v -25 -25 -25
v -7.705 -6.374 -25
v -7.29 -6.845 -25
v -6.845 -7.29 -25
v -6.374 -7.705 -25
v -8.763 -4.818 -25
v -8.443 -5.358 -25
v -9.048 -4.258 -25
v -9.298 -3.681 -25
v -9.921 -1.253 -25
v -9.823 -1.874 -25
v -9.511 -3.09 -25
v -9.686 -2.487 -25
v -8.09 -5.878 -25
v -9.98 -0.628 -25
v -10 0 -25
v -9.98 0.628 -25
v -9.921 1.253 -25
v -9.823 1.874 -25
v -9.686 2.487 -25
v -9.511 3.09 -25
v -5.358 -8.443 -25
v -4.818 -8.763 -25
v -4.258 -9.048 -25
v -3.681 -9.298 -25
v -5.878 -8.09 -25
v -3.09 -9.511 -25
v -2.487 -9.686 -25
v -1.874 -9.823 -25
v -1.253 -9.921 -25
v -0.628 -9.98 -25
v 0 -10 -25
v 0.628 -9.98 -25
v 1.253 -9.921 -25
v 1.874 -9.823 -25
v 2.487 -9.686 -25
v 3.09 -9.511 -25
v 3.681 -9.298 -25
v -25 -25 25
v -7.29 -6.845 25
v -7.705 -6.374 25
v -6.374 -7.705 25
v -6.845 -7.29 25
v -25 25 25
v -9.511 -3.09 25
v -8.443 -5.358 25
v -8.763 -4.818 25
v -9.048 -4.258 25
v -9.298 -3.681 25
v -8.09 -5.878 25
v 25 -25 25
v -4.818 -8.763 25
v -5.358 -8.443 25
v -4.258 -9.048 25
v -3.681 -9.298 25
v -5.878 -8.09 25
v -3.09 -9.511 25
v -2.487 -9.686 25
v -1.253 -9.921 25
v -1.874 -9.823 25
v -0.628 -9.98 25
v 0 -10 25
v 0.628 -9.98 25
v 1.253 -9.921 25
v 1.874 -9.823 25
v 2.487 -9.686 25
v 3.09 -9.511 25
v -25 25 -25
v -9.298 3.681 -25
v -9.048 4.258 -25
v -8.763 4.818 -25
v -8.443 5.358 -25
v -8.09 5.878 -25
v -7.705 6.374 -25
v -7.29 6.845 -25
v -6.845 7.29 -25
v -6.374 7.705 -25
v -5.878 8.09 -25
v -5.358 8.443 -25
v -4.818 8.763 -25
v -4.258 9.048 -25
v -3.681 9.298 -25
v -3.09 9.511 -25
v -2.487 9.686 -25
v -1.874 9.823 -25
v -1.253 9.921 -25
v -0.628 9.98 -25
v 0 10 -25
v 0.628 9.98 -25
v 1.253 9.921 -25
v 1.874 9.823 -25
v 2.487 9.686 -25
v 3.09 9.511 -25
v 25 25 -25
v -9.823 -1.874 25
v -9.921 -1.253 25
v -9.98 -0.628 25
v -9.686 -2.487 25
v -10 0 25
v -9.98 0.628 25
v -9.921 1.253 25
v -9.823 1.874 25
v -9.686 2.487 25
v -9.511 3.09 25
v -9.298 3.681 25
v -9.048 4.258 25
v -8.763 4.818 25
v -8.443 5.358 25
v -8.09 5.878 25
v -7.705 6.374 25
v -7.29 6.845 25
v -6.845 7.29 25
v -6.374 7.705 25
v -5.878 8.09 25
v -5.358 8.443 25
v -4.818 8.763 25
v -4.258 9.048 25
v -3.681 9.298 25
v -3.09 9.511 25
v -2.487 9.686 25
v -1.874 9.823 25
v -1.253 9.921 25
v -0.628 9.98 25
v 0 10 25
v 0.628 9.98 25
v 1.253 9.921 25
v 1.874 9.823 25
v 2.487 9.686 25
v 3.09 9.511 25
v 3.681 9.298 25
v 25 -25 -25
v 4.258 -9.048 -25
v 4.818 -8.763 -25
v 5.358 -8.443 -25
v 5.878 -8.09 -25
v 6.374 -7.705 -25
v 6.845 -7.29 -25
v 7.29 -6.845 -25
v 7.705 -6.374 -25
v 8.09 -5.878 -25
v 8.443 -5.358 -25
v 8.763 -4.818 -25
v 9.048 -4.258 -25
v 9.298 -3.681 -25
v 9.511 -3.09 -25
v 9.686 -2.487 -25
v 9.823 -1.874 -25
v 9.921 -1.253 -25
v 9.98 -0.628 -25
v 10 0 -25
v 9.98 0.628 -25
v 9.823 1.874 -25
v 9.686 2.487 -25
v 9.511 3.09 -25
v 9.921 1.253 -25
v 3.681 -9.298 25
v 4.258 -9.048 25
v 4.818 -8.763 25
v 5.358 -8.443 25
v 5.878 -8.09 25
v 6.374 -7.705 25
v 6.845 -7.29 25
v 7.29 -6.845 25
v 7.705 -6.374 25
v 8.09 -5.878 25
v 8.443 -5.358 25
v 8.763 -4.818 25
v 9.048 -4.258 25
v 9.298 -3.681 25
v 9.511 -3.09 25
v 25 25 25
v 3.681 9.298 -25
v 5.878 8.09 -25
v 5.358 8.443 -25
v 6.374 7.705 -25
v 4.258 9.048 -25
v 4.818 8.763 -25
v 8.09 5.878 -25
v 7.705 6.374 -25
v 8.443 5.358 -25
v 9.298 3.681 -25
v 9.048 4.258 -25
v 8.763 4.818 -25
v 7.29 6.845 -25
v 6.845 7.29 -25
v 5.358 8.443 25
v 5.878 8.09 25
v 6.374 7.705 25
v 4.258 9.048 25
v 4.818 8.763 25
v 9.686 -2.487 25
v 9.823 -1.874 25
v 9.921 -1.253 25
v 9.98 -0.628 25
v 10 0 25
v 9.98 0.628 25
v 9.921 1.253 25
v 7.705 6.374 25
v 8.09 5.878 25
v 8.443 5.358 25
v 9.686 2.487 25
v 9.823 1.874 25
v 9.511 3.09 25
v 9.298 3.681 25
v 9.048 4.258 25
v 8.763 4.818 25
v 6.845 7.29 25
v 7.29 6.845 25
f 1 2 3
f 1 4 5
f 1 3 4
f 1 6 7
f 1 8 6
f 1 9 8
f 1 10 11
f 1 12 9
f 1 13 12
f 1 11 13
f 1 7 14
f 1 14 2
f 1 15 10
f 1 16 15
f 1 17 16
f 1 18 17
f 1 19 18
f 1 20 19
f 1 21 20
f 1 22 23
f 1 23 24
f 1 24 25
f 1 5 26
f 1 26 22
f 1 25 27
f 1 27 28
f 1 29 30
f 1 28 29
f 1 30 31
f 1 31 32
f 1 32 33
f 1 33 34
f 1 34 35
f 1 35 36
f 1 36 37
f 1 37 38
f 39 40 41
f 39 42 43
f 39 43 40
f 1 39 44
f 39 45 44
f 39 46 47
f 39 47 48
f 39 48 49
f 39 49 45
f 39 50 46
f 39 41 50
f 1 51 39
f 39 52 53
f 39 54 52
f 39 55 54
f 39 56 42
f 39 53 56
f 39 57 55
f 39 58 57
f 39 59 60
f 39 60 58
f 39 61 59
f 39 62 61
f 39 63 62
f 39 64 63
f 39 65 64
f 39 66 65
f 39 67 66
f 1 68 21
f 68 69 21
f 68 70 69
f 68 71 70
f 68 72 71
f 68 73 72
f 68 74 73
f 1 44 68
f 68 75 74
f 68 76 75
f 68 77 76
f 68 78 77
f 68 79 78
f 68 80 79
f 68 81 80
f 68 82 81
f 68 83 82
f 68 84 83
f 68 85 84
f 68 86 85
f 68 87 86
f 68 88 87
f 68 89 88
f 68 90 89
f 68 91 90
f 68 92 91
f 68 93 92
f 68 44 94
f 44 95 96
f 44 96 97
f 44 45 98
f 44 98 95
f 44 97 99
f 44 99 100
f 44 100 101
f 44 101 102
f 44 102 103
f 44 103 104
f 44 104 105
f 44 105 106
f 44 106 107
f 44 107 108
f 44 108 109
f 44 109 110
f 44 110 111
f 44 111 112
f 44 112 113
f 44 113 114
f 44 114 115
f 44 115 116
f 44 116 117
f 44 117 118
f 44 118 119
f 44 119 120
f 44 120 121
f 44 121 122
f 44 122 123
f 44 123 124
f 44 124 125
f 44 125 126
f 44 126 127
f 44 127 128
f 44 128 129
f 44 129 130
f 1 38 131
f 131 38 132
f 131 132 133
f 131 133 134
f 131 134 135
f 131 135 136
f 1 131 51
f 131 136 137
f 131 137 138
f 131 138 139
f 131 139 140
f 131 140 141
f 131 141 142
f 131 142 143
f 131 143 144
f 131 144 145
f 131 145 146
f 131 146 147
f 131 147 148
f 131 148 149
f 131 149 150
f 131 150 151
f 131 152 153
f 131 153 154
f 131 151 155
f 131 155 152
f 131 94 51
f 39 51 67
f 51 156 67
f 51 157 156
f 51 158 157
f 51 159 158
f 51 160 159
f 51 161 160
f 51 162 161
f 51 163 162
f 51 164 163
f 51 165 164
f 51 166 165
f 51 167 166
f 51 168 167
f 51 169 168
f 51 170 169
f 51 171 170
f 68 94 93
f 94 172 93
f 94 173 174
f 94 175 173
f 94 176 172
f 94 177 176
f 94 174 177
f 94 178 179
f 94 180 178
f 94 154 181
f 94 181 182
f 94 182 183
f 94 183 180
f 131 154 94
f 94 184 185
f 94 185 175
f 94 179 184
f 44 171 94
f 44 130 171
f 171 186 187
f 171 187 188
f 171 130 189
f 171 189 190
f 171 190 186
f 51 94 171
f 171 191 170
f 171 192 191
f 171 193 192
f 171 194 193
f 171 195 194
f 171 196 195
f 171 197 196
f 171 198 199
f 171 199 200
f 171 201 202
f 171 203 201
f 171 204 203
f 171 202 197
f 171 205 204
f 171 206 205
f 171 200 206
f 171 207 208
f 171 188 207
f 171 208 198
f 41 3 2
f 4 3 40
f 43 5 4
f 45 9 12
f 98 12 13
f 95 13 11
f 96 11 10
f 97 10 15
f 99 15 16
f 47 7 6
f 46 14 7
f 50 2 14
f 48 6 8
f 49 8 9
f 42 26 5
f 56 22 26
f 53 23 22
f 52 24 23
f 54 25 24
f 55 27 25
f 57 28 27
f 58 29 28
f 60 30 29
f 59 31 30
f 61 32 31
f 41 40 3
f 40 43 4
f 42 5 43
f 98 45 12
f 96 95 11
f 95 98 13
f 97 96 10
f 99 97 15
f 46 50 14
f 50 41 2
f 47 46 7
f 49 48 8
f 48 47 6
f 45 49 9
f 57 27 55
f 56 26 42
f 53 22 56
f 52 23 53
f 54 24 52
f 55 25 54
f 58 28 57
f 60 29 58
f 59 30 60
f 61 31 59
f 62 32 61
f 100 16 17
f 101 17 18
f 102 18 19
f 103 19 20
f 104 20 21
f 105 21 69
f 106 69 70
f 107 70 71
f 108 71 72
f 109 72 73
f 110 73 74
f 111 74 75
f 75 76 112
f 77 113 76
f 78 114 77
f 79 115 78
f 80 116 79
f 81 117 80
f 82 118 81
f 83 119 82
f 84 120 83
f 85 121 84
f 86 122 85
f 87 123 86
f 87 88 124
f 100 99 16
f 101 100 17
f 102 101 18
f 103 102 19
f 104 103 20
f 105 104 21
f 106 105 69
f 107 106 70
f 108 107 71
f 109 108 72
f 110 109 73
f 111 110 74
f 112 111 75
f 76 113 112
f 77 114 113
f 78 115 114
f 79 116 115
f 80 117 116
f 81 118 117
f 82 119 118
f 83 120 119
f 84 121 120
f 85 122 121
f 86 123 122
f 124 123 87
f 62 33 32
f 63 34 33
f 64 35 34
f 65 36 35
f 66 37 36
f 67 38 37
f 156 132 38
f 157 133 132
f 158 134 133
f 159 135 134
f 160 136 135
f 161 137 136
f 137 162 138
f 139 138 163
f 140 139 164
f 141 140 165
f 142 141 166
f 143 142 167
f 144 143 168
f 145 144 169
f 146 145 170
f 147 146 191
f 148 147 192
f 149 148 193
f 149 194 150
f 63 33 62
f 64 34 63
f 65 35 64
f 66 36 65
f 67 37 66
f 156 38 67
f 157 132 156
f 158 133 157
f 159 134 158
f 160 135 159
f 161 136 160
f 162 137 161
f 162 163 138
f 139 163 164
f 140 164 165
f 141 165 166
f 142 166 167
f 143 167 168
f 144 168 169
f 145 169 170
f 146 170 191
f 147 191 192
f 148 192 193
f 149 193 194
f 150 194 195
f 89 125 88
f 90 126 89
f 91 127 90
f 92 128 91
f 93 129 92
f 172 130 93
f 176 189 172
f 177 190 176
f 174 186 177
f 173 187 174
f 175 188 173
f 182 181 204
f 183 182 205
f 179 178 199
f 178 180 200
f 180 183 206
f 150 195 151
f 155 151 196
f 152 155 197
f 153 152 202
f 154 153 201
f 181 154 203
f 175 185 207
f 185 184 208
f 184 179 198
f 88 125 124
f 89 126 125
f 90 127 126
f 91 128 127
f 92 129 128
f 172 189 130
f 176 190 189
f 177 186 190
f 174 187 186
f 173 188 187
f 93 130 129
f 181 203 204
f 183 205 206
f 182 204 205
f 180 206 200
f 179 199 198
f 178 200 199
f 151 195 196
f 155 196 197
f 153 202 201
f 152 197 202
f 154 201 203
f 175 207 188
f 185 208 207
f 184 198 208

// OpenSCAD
// 50mm角の立方体に、直径20mmのZ軸方向貫通穴

$fn = 100;

difference() {
    // 50mm角の立方体（中心を原点に配置）
    cube([50, 50, 50], center = true);

    // 中央を貫通する直径20mmの穴（Z軸方向）
    cylinder(h = 60, d = 20, center = true);
}
